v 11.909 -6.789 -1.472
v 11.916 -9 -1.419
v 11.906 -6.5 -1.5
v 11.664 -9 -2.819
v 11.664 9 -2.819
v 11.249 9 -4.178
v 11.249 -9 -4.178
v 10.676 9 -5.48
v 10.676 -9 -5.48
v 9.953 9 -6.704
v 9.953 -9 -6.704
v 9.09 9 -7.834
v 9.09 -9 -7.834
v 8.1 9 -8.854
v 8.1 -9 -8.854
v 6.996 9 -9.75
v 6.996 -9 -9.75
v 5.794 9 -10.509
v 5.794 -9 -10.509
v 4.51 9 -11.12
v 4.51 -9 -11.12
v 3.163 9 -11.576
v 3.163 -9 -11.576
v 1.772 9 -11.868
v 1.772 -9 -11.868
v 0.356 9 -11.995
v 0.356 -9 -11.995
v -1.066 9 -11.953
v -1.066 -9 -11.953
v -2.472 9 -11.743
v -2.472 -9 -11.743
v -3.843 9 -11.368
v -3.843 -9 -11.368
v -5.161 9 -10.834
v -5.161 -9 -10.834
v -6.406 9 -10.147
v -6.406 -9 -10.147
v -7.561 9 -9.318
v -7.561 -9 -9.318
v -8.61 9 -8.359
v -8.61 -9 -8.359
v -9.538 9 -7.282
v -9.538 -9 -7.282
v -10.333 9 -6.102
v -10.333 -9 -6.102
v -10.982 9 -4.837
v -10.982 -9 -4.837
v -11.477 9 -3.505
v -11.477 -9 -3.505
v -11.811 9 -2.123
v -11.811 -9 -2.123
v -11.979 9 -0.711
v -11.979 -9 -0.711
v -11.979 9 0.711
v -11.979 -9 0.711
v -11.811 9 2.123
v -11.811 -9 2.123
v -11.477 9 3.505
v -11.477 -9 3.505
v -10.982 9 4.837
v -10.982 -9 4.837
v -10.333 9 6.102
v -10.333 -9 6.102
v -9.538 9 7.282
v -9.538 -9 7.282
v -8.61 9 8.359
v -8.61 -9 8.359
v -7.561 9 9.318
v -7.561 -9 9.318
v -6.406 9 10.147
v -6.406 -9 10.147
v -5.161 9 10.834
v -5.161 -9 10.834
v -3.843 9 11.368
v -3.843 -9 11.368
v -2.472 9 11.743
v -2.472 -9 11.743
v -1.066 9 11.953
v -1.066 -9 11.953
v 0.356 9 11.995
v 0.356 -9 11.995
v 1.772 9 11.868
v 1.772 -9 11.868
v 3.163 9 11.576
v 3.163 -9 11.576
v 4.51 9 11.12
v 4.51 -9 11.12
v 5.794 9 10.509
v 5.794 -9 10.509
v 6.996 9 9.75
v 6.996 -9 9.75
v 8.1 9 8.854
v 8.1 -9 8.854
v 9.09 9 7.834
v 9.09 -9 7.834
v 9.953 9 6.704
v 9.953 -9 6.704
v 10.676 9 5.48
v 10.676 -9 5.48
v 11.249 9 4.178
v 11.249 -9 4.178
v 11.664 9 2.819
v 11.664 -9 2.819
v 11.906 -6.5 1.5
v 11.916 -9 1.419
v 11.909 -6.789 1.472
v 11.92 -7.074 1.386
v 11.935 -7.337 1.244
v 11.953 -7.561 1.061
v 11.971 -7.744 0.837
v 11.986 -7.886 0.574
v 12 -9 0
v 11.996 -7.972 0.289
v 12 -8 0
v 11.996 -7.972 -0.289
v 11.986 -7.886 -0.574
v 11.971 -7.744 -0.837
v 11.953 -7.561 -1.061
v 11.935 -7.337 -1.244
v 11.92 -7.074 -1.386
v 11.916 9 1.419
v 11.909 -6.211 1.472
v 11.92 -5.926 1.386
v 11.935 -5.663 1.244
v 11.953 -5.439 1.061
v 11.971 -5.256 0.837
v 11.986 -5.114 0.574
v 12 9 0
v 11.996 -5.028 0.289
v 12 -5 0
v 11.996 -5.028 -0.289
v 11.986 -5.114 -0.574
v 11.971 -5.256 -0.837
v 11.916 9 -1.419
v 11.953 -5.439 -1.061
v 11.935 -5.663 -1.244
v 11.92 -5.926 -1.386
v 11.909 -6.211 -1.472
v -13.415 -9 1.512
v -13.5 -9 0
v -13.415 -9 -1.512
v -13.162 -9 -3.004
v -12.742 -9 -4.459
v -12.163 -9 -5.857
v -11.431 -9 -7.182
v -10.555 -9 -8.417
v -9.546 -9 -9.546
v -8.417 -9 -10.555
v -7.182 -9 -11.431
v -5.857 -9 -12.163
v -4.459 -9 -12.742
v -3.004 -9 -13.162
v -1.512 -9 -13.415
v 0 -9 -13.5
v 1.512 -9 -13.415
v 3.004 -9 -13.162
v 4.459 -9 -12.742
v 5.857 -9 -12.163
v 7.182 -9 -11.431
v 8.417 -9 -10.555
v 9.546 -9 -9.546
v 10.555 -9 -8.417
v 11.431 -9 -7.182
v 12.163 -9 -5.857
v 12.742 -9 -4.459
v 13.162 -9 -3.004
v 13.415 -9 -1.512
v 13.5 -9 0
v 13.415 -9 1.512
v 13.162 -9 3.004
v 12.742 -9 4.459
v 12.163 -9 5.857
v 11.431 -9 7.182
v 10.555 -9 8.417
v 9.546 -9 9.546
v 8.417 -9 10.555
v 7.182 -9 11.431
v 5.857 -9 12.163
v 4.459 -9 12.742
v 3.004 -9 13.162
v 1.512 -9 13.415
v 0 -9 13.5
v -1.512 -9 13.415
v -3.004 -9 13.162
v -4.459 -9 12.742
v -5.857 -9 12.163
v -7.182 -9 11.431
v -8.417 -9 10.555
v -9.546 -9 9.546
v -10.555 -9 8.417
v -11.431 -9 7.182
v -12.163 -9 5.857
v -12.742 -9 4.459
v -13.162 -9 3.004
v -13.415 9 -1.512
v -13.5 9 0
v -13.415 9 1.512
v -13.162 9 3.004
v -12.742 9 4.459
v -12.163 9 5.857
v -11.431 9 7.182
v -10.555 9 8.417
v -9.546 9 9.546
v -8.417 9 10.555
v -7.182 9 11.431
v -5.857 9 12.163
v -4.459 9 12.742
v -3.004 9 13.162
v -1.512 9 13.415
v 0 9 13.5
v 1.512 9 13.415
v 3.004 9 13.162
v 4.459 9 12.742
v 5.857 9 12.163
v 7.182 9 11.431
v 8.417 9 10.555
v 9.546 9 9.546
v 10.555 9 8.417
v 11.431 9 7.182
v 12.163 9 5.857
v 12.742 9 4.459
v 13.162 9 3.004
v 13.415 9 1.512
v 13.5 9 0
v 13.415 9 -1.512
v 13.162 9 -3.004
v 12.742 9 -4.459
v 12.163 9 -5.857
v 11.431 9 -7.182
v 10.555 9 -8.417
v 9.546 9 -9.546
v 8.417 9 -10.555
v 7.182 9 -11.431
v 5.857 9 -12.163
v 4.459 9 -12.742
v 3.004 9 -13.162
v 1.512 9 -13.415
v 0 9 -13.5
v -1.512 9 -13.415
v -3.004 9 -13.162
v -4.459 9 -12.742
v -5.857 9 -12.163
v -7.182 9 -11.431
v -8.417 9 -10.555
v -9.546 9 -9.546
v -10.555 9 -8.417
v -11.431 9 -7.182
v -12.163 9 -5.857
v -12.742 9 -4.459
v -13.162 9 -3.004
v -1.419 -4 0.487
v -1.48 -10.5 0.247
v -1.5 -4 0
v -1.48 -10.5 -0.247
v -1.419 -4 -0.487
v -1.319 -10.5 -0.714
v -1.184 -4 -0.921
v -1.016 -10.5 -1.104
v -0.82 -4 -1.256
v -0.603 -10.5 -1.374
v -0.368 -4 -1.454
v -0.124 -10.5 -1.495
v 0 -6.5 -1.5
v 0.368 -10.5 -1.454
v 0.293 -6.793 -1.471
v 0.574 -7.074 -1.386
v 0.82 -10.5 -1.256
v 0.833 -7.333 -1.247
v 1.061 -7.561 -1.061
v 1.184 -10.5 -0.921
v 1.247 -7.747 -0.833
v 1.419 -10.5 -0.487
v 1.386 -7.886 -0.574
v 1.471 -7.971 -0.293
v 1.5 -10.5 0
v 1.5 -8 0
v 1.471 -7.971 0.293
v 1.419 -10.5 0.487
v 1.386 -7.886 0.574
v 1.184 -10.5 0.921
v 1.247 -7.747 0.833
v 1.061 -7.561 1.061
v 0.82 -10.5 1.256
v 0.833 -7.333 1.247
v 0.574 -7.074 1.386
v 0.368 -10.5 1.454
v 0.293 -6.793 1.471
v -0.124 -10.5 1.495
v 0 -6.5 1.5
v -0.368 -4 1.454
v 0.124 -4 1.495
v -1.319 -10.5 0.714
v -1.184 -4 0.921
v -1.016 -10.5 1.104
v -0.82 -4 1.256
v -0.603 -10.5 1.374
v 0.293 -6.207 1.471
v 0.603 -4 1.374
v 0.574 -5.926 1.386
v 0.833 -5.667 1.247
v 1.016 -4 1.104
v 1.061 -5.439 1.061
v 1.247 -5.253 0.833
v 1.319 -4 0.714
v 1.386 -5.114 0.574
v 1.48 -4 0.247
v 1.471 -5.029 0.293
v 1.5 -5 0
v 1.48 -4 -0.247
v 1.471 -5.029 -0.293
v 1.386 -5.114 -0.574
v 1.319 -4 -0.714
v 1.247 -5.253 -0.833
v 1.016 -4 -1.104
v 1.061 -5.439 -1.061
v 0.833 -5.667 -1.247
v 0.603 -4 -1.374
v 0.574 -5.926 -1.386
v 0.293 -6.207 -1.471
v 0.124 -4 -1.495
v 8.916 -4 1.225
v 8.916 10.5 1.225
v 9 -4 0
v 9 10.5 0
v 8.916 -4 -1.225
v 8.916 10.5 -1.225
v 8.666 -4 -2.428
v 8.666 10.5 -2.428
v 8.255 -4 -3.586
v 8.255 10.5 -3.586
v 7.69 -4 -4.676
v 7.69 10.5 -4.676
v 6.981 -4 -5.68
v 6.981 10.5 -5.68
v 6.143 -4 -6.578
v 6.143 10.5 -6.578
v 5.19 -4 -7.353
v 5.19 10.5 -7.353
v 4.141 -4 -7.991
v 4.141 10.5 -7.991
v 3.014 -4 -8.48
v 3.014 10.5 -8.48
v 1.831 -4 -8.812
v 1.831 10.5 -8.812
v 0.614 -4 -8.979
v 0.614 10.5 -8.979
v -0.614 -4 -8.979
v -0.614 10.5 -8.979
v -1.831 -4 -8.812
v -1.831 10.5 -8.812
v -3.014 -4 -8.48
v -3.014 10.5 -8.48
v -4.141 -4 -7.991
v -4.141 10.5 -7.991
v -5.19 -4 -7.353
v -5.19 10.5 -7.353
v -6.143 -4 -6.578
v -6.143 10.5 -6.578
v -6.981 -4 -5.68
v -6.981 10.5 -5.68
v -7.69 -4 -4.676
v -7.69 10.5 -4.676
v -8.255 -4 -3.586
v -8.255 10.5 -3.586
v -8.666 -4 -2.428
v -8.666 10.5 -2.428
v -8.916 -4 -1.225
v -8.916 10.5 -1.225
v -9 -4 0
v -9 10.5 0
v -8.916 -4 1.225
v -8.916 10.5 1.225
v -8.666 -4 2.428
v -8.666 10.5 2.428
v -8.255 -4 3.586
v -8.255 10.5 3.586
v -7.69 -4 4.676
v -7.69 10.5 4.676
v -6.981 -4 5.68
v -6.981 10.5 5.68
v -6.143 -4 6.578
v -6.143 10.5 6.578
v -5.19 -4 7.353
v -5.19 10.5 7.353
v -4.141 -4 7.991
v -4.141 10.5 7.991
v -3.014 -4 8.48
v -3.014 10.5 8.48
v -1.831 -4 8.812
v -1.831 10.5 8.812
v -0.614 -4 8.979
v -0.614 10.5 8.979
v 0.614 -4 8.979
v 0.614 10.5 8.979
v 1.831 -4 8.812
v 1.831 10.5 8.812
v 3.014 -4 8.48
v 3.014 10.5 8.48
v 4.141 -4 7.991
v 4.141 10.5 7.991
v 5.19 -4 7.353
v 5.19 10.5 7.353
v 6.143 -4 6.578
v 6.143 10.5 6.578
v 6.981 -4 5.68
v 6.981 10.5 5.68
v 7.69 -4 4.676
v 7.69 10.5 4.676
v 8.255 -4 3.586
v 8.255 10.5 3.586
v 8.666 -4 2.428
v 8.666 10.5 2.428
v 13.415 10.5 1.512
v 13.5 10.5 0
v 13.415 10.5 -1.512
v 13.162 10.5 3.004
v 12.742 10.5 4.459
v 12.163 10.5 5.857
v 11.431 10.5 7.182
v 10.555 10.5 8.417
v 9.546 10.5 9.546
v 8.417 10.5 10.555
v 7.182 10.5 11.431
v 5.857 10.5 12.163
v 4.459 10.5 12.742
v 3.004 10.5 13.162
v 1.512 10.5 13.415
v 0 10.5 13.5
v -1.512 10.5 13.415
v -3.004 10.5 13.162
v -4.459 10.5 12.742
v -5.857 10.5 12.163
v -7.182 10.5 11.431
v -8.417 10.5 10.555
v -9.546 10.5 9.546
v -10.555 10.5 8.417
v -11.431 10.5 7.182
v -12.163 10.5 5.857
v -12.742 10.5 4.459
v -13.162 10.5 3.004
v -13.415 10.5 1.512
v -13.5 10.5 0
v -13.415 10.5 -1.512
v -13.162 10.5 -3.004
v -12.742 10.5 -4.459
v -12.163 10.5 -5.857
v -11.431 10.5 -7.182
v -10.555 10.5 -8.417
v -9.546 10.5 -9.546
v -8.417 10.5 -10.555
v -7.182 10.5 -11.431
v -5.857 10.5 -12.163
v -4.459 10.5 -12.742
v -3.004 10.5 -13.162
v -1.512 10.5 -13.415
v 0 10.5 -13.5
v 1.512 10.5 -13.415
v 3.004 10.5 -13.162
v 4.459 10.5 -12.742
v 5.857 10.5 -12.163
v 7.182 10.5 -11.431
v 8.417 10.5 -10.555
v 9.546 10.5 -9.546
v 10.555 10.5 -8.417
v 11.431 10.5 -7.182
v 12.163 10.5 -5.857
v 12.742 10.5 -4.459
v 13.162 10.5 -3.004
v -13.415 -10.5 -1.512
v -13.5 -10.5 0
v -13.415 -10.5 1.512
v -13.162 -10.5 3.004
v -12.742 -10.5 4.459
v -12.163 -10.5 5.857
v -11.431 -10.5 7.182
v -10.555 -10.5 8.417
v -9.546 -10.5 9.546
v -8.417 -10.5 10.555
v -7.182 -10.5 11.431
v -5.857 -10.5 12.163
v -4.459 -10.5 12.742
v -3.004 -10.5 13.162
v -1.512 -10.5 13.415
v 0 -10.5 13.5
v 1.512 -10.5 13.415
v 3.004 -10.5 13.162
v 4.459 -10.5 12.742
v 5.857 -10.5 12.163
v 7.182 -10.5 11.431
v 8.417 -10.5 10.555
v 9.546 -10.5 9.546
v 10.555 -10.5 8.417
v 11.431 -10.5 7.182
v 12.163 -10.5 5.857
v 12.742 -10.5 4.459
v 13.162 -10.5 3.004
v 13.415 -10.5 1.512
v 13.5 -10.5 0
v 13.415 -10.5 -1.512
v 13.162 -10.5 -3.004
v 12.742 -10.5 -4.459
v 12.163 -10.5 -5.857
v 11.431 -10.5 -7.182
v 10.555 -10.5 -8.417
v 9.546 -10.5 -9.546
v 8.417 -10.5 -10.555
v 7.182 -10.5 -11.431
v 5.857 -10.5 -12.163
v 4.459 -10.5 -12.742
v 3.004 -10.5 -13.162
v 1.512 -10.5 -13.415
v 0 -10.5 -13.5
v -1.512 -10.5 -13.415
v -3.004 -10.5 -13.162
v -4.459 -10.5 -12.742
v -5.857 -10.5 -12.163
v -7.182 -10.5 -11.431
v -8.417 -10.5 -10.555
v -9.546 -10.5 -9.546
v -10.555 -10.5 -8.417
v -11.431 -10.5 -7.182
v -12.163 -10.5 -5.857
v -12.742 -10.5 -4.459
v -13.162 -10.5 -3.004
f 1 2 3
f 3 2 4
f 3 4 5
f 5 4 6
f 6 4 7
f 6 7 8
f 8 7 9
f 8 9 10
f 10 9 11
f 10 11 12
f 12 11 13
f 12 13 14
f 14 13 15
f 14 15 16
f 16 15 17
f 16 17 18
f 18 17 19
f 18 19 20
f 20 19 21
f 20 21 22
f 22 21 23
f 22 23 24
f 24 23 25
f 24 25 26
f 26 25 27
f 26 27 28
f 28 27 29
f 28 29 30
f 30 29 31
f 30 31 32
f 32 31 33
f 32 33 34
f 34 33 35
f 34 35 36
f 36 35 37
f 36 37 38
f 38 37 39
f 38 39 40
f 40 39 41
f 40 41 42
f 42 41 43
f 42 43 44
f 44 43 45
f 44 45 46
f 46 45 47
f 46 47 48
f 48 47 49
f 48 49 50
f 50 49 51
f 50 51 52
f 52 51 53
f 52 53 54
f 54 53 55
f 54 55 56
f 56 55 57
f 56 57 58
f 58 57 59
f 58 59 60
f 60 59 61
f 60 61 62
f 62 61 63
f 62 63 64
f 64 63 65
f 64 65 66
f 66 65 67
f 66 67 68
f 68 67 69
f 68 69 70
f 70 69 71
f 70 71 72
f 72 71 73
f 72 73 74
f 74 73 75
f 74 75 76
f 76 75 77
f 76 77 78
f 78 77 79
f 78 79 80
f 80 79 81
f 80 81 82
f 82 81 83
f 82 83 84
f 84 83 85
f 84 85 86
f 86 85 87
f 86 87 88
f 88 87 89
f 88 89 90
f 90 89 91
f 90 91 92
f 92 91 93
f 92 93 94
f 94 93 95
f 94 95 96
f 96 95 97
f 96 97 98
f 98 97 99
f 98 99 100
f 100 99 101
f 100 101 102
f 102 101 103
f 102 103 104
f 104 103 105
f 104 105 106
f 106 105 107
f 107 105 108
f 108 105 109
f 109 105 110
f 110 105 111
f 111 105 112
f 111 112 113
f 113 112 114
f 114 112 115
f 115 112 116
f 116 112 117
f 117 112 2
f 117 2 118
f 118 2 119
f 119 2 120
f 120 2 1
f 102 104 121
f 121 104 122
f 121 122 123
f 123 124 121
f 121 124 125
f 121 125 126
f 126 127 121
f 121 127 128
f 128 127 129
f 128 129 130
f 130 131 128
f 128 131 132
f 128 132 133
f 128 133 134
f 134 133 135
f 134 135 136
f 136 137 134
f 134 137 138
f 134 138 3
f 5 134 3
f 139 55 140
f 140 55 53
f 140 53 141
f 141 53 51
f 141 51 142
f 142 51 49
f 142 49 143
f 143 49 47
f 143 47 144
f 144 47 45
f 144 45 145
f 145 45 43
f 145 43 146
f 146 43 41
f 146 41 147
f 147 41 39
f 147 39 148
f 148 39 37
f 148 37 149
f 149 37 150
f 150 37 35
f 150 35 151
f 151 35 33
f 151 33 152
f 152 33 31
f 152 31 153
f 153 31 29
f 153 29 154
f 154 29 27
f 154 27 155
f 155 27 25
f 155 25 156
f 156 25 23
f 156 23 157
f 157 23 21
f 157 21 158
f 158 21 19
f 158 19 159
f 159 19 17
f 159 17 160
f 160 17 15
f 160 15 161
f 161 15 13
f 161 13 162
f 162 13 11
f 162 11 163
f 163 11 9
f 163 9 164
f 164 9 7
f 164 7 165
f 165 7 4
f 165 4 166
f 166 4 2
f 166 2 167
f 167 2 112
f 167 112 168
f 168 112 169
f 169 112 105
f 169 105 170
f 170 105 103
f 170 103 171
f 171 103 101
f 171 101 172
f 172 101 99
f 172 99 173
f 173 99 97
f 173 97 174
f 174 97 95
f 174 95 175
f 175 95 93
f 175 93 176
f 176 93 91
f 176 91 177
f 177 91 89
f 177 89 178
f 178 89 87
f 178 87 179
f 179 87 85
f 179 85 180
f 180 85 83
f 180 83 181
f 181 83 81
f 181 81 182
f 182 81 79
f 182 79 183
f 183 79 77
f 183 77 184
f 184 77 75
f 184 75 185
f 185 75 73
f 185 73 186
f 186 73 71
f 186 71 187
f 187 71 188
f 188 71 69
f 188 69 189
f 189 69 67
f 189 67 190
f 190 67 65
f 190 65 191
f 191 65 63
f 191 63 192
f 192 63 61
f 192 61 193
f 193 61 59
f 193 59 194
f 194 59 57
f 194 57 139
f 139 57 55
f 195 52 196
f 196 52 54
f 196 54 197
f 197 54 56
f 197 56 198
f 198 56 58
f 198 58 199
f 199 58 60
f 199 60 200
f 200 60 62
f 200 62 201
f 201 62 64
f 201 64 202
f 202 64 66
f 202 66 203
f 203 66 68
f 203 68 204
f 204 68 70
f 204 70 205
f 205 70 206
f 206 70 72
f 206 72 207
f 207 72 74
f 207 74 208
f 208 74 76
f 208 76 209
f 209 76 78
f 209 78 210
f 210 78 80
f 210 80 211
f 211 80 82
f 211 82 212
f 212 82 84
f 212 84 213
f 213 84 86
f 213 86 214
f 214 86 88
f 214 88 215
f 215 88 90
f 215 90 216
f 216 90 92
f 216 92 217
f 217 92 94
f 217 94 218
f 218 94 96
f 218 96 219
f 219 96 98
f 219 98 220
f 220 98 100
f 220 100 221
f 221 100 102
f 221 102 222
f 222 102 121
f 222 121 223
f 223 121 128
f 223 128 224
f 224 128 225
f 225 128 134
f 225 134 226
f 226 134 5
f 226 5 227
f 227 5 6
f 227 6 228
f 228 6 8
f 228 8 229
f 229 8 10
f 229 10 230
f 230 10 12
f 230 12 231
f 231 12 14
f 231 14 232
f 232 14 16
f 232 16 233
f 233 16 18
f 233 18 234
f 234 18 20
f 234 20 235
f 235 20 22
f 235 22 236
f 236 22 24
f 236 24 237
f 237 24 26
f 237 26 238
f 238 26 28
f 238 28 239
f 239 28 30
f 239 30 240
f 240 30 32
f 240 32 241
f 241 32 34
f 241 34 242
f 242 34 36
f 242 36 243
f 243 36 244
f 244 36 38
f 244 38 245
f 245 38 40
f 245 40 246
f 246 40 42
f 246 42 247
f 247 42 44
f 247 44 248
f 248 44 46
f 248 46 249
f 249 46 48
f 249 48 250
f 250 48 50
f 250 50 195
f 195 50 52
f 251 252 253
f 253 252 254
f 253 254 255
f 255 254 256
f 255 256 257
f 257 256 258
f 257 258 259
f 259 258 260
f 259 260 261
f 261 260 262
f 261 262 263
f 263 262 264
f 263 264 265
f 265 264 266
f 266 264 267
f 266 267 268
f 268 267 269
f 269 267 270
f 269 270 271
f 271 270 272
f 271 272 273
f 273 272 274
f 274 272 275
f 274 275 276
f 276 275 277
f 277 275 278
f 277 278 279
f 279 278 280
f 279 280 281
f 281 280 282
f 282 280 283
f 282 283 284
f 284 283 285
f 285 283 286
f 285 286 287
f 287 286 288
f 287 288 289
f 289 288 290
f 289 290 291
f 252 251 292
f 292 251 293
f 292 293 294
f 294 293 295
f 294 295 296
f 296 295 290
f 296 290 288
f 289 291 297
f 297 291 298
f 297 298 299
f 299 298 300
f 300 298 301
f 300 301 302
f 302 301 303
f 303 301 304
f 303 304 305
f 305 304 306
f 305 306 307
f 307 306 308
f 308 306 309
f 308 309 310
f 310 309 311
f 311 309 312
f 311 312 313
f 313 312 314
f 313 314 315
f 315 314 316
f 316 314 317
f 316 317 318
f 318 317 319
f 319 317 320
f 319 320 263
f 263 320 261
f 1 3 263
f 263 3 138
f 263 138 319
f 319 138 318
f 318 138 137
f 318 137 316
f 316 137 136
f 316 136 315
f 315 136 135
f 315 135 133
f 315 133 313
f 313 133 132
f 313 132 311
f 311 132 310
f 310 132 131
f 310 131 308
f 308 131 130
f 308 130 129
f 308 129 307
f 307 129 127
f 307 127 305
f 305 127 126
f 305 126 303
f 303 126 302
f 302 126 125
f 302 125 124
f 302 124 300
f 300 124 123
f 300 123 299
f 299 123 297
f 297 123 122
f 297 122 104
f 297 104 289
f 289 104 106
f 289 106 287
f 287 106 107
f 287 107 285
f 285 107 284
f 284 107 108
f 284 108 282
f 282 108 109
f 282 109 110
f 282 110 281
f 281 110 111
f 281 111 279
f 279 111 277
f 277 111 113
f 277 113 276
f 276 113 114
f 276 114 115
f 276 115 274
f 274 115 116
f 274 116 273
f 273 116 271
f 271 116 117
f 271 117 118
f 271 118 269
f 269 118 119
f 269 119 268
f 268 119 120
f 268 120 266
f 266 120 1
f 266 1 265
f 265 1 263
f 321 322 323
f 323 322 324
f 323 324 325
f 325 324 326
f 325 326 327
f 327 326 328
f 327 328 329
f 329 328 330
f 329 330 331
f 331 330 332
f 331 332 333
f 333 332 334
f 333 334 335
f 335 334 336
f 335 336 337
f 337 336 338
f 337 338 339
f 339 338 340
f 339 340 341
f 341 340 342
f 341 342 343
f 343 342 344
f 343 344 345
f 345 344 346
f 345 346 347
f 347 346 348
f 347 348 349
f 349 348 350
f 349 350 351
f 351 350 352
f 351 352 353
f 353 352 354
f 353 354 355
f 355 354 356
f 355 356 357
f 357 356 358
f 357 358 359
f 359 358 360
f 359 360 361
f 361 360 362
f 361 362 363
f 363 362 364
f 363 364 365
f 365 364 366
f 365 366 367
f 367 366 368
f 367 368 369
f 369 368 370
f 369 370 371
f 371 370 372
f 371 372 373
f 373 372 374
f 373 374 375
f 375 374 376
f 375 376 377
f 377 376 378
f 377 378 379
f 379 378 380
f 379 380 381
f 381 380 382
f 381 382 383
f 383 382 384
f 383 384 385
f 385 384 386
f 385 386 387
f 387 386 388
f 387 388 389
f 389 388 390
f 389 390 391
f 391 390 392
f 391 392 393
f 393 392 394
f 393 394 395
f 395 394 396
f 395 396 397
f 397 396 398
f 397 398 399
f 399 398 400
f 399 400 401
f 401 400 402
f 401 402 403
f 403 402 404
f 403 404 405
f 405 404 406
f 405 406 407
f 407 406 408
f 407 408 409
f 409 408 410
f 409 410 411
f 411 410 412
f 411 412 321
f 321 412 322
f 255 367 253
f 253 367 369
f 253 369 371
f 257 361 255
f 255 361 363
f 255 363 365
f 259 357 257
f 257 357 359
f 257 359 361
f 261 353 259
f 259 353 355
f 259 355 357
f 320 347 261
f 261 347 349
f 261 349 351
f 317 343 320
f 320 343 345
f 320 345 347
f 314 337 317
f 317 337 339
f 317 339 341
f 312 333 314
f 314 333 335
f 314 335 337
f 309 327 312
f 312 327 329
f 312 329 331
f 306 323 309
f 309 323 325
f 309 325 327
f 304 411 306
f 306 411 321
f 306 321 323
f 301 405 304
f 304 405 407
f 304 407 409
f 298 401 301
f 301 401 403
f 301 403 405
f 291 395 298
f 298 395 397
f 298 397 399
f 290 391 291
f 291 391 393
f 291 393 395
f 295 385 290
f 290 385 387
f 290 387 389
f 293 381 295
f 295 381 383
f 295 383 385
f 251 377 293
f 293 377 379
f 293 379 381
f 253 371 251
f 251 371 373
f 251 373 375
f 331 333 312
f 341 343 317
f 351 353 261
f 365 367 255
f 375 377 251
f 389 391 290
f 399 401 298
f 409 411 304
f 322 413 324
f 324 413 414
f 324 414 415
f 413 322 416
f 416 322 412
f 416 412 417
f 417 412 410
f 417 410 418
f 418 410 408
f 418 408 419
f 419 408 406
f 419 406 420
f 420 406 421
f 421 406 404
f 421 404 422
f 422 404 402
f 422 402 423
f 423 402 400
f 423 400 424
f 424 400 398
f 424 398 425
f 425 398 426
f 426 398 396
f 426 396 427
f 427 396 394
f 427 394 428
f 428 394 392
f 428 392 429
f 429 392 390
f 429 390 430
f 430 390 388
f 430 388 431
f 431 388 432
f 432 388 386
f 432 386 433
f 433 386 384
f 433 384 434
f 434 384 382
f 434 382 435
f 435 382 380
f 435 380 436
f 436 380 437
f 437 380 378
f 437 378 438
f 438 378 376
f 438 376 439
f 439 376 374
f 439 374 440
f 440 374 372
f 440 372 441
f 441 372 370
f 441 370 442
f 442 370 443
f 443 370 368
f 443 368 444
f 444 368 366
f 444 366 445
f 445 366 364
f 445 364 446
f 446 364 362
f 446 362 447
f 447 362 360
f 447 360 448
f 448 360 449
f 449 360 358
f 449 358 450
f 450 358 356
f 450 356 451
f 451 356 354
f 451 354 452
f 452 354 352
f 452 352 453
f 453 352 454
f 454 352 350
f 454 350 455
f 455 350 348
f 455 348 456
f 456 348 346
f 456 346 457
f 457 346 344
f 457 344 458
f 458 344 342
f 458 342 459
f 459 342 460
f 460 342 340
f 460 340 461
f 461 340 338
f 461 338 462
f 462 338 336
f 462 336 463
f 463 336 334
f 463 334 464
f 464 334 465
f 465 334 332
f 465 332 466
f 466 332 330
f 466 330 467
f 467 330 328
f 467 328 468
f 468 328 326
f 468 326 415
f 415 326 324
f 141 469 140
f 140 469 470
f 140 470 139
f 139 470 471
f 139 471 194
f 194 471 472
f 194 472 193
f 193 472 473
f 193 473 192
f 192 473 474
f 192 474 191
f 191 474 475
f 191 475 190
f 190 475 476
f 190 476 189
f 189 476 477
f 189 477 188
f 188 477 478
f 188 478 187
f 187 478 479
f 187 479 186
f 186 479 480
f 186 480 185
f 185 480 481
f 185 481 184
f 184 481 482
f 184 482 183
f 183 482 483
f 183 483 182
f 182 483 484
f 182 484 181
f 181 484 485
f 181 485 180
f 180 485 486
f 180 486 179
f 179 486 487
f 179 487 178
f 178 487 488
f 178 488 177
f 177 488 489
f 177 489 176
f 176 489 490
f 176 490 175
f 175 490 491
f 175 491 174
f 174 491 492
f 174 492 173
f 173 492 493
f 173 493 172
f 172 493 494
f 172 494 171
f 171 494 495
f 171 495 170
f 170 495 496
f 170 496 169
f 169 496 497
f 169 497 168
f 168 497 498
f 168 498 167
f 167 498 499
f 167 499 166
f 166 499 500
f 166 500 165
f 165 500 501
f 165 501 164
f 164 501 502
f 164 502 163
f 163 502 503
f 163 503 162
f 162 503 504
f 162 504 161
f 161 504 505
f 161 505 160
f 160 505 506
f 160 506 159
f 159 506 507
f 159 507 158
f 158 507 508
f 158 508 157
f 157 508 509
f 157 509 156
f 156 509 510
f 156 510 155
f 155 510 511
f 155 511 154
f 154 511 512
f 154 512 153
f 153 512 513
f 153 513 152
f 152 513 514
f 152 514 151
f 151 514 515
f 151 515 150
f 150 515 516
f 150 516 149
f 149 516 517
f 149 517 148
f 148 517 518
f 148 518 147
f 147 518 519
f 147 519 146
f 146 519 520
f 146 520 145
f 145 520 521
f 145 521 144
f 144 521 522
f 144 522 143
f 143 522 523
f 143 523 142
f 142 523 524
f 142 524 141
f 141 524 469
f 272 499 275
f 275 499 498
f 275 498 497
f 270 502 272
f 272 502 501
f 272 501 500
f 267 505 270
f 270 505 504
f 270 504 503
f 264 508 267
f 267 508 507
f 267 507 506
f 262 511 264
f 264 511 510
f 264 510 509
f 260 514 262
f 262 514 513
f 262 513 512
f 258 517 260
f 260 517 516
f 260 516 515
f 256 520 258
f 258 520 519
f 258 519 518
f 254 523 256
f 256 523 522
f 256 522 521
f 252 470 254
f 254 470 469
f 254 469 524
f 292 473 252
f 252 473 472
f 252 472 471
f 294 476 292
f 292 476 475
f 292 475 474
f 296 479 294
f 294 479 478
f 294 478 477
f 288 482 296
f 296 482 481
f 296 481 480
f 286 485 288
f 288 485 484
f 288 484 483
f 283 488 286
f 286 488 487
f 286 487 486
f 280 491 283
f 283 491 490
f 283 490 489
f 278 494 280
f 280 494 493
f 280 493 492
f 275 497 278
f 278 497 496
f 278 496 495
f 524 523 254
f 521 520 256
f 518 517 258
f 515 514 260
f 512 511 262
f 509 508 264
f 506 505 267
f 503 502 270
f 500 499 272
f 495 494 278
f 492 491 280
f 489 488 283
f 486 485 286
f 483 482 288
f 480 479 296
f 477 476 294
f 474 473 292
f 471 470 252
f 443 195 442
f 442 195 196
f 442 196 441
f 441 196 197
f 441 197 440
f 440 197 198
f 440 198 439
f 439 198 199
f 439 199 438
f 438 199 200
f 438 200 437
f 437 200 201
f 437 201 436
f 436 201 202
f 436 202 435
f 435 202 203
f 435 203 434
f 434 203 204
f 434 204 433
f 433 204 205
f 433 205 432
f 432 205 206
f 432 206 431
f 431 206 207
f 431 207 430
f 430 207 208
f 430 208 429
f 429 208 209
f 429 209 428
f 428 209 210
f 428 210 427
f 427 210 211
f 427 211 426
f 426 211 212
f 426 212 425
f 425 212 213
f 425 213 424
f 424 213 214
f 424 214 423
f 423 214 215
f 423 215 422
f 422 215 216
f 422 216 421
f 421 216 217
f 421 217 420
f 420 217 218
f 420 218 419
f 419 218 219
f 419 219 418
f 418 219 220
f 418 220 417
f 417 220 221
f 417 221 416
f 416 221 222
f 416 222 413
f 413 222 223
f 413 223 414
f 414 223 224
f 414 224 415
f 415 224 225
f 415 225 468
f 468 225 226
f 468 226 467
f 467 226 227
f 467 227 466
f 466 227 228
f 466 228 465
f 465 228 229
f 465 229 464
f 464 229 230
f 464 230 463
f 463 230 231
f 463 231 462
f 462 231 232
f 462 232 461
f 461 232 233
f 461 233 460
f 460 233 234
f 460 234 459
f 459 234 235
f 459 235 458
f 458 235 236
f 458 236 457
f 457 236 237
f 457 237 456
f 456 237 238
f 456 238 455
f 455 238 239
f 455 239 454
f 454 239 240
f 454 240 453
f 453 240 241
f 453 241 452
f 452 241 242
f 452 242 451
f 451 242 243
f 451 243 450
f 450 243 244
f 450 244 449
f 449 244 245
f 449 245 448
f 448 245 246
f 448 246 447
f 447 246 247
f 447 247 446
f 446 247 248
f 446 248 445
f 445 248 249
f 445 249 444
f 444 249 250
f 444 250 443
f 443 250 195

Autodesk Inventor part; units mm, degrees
ref_plane "YZ Plane" through (0, 0, 0) normal (1, 0, 0) x (0, 1, 0)
ref_plane "XZ Plane" through (0, 0, 0) normal (0, 1, 0) x (-1, 0, 0)
ref_plane "XY Plane" through (0, 0, 0) normal (0, 0, 1) x (1, 0, 0)
sketch "Náčrt1" plane through (0, 0, 0) normal (0, 1, 0) x (-1, 0, 0)
  circle A0 centre (0, 0) radius 16.5
  circle A1 centre (0, 0) radius 13.5
  dimension "d0" = 33
  dimension "d1" = 27
extrude "Vysunutí1" add sketch "Náčrt1" along normal mid plane 21 contours A1
sketch "Náčrt4" plane through (0, 0, 0) normal (1, 0, 0) x (0, 1, 0)
  line L0 (-10.5, 13.5) -> (-10.5, -13.5) projected
  point P0 (0, 0)
  point P1 (-6.5, 0)
  dimension "d16" = 4
hole "Díra2" at (0, -6.5, 0) direction (1, 0, 0) diameter 3 end through all
thread "Závit1" size "M3x0.5" class "6H" standard "ISO Metric profile" full length
extrude "Vysunutí2" add sketch "Náčrt1" along normal mid plane 18
sketch "Náčrt2" plane through (0, 10.5, 0) normal (0, 1, 0) x (1, 0, 0)
  circle A0 centre (0, 0) radius 9
  dimension "d6" = 18
extrude "Vysunutí3" cut sketch "Náčrt2" against normal blind 14.5
sketch "Náčrt3" plane through (0, -10.5, 0) normal (0, -1, 0) x (1, 0, 0)
  circle A0 centre (0, 0) radius 13.5 projected
hole "Díra1" at (0, -10.5, 0) direction (0, 1, 0) diameter 3 end through all
sketch "Náčrt5" plane through (0, -9, 0) normal (0, -1, 0) x (1, 0, 0)
  circle A0 centre (0, 0) radius 16.5 projected
  circle A1 centre (0, 0) radius 1.5 projected
  circle A2 centre (0, 0) radius 12
  dimension "d26" = 24
extrude "Vysunutí4" cut sketch "Náčrt5" against normal up to surface (18 mm away) contours A0
properties part number "JSUMO_Wheel_33x20mm_NoSilicon"
